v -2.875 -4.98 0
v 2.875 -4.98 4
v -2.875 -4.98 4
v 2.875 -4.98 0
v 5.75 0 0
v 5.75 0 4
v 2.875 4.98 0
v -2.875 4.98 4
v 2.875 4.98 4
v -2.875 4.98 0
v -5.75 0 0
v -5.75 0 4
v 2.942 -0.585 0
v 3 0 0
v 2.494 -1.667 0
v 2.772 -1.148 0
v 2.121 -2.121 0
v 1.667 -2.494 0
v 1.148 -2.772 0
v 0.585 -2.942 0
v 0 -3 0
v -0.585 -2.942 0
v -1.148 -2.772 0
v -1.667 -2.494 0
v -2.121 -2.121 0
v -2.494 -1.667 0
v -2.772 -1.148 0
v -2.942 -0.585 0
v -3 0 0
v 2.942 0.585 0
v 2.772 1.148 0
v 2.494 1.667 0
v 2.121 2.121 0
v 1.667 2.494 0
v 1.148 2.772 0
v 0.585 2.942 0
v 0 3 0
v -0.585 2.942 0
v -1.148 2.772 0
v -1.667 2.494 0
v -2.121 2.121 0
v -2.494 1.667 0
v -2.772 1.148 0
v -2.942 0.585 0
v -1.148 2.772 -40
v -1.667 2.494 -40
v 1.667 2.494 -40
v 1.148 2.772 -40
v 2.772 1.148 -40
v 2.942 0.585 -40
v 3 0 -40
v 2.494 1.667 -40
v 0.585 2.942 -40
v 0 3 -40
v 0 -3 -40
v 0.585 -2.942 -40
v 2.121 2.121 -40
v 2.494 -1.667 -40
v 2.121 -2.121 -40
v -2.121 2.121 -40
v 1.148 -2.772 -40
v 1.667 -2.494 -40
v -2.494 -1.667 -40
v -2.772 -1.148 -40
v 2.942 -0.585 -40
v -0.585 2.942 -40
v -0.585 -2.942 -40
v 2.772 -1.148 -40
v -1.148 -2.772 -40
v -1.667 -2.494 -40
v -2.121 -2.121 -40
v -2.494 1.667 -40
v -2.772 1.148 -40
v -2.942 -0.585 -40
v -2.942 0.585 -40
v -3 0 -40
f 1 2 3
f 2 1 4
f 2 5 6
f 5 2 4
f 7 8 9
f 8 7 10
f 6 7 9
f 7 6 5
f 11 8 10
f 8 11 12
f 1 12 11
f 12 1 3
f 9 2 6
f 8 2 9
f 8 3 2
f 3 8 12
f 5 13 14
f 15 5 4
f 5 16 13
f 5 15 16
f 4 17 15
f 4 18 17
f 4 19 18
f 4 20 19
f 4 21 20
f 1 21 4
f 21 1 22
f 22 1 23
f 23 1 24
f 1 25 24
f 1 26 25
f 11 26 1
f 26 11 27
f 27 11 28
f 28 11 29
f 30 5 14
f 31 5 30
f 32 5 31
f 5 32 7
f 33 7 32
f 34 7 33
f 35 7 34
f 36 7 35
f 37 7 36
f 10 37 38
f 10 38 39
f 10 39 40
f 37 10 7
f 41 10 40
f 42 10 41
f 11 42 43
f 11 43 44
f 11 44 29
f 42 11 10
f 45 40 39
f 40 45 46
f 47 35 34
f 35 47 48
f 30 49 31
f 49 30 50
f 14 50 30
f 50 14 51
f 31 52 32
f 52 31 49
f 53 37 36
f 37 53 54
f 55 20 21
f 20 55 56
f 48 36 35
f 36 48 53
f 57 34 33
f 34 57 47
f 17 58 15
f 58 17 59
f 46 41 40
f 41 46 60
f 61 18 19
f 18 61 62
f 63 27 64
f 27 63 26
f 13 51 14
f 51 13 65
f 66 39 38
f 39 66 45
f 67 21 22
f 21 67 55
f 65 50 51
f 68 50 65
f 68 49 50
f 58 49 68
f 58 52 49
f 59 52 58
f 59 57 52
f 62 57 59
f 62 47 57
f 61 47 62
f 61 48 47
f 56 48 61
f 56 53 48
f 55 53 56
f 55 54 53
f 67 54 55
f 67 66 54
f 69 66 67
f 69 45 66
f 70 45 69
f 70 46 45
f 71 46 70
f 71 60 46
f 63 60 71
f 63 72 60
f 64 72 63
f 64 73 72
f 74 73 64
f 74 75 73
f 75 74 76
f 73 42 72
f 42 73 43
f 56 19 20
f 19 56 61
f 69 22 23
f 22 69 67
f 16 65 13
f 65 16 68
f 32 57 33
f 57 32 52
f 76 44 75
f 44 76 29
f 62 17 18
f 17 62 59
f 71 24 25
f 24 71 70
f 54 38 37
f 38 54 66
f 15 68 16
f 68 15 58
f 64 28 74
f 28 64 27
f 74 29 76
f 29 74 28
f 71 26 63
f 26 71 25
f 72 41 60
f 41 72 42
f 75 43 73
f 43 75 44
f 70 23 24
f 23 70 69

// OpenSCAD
// Hex bolt M6x40, axis +z, head on top (z 0 to 4), shank below (z -40 to 0). Invented for the prototype.
$fn = 32;
union() {
  cylinder(d = 11.5, h = 4, $fn = 6);
  translate([0, 0, -40]) cylinder(d = 6, h = 40.01);
}
